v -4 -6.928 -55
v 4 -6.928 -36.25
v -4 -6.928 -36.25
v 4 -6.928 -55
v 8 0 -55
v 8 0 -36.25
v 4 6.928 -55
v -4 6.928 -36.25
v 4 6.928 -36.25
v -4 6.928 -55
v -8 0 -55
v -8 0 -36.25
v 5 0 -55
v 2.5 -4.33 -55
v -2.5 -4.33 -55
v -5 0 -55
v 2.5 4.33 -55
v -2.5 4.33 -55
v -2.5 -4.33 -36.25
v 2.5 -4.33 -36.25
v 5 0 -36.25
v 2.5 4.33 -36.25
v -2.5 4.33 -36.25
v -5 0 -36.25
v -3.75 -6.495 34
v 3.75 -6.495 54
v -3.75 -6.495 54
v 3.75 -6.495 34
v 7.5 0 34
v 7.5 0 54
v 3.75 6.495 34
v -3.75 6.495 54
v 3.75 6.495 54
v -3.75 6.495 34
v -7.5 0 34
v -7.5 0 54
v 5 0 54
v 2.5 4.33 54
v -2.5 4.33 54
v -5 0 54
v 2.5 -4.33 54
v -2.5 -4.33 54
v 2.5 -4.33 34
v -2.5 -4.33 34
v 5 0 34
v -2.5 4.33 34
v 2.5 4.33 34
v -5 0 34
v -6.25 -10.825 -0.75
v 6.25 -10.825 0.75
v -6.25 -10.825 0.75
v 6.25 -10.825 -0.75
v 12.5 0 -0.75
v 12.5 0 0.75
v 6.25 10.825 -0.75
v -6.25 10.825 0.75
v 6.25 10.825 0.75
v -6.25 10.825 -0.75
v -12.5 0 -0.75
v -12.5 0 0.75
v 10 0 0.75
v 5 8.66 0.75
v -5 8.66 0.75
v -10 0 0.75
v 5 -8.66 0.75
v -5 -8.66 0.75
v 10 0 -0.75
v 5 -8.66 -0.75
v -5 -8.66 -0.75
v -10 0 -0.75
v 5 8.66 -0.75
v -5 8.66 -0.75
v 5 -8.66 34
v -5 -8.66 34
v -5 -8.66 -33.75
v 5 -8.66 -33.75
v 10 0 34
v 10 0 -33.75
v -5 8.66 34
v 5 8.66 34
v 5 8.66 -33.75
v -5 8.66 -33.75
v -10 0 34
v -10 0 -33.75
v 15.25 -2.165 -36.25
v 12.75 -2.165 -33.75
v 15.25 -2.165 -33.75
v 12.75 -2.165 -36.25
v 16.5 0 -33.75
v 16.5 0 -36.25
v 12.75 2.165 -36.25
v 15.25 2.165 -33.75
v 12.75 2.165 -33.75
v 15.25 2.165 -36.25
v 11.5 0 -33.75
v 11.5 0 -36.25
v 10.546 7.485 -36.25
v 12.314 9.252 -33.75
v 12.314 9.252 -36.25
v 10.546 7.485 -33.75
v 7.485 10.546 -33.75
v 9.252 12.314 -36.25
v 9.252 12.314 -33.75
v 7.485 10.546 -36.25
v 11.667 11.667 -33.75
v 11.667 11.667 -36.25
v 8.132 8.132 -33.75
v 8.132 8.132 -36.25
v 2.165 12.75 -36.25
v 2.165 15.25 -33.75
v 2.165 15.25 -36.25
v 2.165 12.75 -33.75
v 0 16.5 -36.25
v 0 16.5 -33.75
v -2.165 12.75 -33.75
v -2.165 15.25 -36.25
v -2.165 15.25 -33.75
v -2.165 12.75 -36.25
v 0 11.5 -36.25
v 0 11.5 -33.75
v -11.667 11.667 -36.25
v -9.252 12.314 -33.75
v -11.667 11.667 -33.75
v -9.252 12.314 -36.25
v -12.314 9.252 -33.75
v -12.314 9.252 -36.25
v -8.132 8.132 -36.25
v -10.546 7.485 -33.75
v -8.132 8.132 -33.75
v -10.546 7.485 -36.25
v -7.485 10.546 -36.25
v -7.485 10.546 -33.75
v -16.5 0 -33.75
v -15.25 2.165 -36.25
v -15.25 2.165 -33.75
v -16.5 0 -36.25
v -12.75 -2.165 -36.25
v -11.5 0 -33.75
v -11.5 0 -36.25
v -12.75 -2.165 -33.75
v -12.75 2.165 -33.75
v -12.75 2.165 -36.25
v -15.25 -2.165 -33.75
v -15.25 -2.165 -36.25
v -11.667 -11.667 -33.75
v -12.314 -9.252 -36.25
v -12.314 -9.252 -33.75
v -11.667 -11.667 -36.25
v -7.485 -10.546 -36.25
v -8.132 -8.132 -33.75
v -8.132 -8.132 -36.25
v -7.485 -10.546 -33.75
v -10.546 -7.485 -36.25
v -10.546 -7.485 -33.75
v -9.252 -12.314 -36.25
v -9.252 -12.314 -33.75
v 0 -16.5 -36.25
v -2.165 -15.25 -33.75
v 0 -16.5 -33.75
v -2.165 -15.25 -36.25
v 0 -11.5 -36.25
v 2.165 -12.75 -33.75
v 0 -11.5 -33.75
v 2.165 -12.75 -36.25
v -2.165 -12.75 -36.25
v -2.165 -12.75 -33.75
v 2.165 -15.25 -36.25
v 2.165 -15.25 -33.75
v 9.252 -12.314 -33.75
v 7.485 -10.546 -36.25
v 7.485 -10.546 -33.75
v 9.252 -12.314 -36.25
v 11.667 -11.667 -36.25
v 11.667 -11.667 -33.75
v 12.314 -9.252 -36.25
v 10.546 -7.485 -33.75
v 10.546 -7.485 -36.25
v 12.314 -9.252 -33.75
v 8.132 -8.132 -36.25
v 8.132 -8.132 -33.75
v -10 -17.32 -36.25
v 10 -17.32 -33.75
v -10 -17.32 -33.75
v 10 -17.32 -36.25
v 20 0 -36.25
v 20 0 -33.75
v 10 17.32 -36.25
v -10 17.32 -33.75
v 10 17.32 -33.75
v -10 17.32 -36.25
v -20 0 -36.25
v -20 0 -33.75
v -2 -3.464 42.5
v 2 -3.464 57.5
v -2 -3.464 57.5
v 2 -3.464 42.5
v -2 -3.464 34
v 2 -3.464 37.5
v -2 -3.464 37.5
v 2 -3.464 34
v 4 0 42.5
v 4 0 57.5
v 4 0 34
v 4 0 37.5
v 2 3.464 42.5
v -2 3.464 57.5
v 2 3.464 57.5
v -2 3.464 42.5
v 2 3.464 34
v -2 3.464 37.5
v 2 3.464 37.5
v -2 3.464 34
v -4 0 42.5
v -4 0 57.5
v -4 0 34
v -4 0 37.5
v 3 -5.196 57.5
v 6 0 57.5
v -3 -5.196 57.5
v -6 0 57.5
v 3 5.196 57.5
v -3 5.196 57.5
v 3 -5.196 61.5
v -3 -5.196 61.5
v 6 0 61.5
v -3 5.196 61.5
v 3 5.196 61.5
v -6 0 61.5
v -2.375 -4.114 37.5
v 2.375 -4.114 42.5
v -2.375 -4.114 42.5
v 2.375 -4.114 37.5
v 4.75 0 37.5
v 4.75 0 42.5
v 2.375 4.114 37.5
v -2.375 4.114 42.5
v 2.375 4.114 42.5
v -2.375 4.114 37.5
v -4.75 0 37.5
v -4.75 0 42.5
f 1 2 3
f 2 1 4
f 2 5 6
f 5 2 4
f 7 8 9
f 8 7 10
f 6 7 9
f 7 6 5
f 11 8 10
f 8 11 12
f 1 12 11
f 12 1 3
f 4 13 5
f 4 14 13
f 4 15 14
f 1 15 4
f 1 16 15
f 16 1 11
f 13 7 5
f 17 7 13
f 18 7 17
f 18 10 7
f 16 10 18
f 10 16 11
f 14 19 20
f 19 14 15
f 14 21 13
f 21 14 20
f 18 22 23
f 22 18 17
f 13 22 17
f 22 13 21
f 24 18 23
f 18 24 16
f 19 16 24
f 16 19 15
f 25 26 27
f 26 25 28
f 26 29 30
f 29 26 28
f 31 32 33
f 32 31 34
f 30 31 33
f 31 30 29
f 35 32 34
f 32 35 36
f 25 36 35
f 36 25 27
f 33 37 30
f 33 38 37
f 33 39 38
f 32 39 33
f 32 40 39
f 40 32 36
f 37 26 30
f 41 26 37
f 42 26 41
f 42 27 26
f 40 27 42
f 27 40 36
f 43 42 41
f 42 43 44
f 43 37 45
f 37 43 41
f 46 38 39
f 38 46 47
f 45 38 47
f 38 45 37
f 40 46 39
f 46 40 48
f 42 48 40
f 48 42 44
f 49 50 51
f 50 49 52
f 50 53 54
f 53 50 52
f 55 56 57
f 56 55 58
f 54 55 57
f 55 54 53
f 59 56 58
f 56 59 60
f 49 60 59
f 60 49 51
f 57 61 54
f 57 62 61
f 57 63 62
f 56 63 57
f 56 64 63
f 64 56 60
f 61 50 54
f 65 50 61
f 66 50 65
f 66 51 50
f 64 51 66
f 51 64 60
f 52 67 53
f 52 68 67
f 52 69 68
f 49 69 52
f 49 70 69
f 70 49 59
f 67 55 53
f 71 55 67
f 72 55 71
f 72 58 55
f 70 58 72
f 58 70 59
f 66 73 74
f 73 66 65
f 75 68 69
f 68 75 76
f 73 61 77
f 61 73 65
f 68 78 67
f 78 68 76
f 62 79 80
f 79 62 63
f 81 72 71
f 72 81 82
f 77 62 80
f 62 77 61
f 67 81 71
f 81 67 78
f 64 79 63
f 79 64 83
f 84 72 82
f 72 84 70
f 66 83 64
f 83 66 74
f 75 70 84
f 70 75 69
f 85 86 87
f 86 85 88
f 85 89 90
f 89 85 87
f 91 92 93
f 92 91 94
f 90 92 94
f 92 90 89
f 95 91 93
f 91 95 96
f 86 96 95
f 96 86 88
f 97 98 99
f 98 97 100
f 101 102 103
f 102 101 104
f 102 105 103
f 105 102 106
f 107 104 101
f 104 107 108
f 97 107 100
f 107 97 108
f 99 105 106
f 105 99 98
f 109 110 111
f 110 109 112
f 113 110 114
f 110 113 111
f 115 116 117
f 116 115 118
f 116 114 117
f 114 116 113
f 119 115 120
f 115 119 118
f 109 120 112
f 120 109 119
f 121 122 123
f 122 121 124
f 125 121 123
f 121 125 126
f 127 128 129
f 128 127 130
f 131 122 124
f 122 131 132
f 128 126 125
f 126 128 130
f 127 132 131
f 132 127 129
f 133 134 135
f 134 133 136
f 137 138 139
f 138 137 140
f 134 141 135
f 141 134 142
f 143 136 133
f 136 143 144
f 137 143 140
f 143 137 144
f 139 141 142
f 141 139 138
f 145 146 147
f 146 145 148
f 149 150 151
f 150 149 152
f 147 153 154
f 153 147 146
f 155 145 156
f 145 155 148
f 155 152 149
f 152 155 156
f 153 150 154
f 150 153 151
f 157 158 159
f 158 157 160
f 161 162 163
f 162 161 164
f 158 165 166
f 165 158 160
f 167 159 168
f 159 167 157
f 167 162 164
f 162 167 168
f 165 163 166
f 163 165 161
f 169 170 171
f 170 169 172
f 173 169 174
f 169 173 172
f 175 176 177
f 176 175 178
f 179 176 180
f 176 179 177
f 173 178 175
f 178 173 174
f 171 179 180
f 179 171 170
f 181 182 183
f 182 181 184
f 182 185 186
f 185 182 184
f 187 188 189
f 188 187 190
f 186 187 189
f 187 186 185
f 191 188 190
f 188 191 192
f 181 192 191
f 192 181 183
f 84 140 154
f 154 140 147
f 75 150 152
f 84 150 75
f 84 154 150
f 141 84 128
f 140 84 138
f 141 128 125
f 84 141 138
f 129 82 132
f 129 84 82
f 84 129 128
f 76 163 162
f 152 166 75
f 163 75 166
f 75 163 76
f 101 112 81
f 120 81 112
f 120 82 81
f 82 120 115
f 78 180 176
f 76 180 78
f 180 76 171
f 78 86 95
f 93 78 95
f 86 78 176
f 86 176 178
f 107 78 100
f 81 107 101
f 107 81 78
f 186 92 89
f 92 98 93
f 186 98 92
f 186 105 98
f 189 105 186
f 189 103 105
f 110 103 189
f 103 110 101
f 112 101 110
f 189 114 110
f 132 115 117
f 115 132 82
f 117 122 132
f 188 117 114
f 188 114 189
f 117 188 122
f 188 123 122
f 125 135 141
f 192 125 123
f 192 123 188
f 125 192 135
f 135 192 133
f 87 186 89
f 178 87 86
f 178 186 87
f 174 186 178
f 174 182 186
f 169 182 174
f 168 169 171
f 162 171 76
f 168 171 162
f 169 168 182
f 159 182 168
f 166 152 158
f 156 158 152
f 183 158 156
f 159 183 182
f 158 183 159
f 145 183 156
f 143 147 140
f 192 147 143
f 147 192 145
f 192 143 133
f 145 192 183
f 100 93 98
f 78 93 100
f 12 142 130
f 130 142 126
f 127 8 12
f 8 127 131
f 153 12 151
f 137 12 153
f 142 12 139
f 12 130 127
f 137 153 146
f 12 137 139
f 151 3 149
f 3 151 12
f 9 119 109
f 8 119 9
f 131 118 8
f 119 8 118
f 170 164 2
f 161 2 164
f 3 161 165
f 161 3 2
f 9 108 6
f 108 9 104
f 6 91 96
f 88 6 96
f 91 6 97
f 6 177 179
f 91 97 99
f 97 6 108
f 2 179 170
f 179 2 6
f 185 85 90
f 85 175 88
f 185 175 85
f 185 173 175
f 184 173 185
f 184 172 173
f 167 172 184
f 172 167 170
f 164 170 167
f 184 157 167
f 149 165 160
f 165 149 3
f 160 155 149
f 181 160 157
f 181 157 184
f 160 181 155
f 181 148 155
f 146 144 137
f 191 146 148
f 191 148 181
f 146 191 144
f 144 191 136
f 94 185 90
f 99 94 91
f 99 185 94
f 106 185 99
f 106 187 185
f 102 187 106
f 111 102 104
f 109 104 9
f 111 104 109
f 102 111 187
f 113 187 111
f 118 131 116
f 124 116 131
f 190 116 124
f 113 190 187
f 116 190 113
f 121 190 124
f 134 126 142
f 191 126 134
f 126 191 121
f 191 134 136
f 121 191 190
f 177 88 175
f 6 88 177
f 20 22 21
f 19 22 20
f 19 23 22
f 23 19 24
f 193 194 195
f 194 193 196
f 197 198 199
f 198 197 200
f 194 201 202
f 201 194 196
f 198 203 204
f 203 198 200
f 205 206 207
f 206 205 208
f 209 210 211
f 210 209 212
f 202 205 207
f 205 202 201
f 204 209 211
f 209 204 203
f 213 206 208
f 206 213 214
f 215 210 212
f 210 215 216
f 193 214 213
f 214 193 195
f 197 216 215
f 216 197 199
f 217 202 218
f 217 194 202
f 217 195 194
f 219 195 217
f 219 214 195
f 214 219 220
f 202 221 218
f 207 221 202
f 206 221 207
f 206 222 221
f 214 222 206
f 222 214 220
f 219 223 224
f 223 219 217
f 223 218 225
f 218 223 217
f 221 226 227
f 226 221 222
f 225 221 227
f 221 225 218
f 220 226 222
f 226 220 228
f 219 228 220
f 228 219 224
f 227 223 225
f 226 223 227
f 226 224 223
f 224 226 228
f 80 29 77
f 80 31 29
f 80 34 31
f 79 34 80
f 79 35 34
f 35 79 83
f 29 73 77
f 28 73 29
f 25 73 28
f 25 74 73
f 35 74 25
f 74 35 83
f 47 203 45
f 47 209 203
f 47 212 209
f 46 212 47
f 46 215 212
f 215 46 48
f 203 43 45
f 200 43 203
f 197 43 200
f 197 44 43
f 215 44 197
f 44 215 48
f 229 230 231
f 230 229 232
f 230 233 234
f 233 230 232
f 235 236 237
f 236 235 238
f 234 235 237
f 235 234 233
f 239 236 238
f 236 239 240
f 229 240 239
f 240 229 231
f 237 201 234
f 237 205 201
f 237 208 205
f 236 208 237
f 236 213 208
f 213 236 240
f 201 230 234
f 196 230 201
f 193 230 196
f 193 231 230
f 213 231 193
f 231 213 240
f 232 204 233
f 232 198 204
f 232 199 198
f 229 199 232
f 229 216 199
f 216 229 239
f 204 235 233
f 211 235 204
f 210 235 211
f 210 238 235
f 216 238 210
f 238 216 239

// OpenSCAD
central_shaft_diameter = 20;
central_shaft_length = 68;
$fn = 200;

module central_shaft() {
    cylinder(h = central_shaft_length, d = central_shaft_diameter, center = true);
}

translate([0, 0, 0]) {
    central_shaft();
}

input_shaft_diameter = 16;
input_shaft_length = 50;
input_hollow_diameter = 10;
$fn = 200;

module input_shaft() {
    difference() {
        cylinder(h = input_shaft_length, d = input_shaft_diameter, center = true);
        cylinder(h = input_shaft_length + 1, d = input_hollow_diameter, center = true);
    }
}

translate([0, 0, -30]) {
    input_shaft();
}

output_shaft_diameter = 15;
output_shaft_length = 48;
output_hollow_diameter = 10;
$fn = 200;

module output_shaft() {
    difference() {
        cylinder(h = output_shaft_length, d = output_shaft_diameter, center = true);
        cylinder(h = output_shaft_length + 1, d = output_hollow_diameter, center = true);
    }
}

translate([0, 0, 30]) {
    output_shaft();
}

spacer_ring_outer_diameter = 25;
spacer_ring_inner_diameter = 20;
spacer_ring_thickness = 1.5;
$fn = 200;

module spacer_ring() {
    difference() {
        cylinder(h = spacer_ring_thickness, d = spacer_ring_outer_diameter, center = true);
        cylinder(h = spacer_ring_thickness + 1, d = spacer_ring_inner_diameter, center = true);
    }
}

translate([0, 0, 0]) {
    spacer_ring();
}

flange_plate_diameter = 40;
flange_plate_thickness = 2.5;
bolt_hole_diameter = 5;
bolt_hole_count = 8;
$fn = 200;

module flange_plate() {
    difference() {
        cylinder(h = flange_plate_thickness, d = flange_plate_diameter, center = true);
        for (i = [0:360/bolt_hole_count:360-360/bolt_hole_count]) {
            rotate([0, 0, i]) {
                translate([flange_plate_diameter/2 - 6, 0, 0]) {
                    cylinder(h = flange_plate_thickness + 1, d = bolt_hole_diameter, center = true);
                }
            }
        }
    }
}

translate([0, 0, -35]) {
    flange_plate();
}

nut_diameter = 9.5;
nut_thickness = 5;
$fn = 6;

module nut() {
    cylinder(h = nut_thickness, d = nut_diameter, center = true);
}

translate([0, 0, 40]) {
    nut();
}

bolt_diameter = 8;
bolt_length = 25;
bolt_head_diameter = 12;
bolt_head_thickness = 4;
$fn = 6;

module bolt() {
    union() {
        cylinder(h = bolt_length, d = bolt_diameter, center = true);
        translate([0, 0, bolt_length/2 + bolt_head_thickness/2]) {
            cylinder(h = bolt_head_thickness, d = bolt_head_diameter, center = true);
        }
    }
}

translate([0, 0, 45]) {
    bolt();
}
